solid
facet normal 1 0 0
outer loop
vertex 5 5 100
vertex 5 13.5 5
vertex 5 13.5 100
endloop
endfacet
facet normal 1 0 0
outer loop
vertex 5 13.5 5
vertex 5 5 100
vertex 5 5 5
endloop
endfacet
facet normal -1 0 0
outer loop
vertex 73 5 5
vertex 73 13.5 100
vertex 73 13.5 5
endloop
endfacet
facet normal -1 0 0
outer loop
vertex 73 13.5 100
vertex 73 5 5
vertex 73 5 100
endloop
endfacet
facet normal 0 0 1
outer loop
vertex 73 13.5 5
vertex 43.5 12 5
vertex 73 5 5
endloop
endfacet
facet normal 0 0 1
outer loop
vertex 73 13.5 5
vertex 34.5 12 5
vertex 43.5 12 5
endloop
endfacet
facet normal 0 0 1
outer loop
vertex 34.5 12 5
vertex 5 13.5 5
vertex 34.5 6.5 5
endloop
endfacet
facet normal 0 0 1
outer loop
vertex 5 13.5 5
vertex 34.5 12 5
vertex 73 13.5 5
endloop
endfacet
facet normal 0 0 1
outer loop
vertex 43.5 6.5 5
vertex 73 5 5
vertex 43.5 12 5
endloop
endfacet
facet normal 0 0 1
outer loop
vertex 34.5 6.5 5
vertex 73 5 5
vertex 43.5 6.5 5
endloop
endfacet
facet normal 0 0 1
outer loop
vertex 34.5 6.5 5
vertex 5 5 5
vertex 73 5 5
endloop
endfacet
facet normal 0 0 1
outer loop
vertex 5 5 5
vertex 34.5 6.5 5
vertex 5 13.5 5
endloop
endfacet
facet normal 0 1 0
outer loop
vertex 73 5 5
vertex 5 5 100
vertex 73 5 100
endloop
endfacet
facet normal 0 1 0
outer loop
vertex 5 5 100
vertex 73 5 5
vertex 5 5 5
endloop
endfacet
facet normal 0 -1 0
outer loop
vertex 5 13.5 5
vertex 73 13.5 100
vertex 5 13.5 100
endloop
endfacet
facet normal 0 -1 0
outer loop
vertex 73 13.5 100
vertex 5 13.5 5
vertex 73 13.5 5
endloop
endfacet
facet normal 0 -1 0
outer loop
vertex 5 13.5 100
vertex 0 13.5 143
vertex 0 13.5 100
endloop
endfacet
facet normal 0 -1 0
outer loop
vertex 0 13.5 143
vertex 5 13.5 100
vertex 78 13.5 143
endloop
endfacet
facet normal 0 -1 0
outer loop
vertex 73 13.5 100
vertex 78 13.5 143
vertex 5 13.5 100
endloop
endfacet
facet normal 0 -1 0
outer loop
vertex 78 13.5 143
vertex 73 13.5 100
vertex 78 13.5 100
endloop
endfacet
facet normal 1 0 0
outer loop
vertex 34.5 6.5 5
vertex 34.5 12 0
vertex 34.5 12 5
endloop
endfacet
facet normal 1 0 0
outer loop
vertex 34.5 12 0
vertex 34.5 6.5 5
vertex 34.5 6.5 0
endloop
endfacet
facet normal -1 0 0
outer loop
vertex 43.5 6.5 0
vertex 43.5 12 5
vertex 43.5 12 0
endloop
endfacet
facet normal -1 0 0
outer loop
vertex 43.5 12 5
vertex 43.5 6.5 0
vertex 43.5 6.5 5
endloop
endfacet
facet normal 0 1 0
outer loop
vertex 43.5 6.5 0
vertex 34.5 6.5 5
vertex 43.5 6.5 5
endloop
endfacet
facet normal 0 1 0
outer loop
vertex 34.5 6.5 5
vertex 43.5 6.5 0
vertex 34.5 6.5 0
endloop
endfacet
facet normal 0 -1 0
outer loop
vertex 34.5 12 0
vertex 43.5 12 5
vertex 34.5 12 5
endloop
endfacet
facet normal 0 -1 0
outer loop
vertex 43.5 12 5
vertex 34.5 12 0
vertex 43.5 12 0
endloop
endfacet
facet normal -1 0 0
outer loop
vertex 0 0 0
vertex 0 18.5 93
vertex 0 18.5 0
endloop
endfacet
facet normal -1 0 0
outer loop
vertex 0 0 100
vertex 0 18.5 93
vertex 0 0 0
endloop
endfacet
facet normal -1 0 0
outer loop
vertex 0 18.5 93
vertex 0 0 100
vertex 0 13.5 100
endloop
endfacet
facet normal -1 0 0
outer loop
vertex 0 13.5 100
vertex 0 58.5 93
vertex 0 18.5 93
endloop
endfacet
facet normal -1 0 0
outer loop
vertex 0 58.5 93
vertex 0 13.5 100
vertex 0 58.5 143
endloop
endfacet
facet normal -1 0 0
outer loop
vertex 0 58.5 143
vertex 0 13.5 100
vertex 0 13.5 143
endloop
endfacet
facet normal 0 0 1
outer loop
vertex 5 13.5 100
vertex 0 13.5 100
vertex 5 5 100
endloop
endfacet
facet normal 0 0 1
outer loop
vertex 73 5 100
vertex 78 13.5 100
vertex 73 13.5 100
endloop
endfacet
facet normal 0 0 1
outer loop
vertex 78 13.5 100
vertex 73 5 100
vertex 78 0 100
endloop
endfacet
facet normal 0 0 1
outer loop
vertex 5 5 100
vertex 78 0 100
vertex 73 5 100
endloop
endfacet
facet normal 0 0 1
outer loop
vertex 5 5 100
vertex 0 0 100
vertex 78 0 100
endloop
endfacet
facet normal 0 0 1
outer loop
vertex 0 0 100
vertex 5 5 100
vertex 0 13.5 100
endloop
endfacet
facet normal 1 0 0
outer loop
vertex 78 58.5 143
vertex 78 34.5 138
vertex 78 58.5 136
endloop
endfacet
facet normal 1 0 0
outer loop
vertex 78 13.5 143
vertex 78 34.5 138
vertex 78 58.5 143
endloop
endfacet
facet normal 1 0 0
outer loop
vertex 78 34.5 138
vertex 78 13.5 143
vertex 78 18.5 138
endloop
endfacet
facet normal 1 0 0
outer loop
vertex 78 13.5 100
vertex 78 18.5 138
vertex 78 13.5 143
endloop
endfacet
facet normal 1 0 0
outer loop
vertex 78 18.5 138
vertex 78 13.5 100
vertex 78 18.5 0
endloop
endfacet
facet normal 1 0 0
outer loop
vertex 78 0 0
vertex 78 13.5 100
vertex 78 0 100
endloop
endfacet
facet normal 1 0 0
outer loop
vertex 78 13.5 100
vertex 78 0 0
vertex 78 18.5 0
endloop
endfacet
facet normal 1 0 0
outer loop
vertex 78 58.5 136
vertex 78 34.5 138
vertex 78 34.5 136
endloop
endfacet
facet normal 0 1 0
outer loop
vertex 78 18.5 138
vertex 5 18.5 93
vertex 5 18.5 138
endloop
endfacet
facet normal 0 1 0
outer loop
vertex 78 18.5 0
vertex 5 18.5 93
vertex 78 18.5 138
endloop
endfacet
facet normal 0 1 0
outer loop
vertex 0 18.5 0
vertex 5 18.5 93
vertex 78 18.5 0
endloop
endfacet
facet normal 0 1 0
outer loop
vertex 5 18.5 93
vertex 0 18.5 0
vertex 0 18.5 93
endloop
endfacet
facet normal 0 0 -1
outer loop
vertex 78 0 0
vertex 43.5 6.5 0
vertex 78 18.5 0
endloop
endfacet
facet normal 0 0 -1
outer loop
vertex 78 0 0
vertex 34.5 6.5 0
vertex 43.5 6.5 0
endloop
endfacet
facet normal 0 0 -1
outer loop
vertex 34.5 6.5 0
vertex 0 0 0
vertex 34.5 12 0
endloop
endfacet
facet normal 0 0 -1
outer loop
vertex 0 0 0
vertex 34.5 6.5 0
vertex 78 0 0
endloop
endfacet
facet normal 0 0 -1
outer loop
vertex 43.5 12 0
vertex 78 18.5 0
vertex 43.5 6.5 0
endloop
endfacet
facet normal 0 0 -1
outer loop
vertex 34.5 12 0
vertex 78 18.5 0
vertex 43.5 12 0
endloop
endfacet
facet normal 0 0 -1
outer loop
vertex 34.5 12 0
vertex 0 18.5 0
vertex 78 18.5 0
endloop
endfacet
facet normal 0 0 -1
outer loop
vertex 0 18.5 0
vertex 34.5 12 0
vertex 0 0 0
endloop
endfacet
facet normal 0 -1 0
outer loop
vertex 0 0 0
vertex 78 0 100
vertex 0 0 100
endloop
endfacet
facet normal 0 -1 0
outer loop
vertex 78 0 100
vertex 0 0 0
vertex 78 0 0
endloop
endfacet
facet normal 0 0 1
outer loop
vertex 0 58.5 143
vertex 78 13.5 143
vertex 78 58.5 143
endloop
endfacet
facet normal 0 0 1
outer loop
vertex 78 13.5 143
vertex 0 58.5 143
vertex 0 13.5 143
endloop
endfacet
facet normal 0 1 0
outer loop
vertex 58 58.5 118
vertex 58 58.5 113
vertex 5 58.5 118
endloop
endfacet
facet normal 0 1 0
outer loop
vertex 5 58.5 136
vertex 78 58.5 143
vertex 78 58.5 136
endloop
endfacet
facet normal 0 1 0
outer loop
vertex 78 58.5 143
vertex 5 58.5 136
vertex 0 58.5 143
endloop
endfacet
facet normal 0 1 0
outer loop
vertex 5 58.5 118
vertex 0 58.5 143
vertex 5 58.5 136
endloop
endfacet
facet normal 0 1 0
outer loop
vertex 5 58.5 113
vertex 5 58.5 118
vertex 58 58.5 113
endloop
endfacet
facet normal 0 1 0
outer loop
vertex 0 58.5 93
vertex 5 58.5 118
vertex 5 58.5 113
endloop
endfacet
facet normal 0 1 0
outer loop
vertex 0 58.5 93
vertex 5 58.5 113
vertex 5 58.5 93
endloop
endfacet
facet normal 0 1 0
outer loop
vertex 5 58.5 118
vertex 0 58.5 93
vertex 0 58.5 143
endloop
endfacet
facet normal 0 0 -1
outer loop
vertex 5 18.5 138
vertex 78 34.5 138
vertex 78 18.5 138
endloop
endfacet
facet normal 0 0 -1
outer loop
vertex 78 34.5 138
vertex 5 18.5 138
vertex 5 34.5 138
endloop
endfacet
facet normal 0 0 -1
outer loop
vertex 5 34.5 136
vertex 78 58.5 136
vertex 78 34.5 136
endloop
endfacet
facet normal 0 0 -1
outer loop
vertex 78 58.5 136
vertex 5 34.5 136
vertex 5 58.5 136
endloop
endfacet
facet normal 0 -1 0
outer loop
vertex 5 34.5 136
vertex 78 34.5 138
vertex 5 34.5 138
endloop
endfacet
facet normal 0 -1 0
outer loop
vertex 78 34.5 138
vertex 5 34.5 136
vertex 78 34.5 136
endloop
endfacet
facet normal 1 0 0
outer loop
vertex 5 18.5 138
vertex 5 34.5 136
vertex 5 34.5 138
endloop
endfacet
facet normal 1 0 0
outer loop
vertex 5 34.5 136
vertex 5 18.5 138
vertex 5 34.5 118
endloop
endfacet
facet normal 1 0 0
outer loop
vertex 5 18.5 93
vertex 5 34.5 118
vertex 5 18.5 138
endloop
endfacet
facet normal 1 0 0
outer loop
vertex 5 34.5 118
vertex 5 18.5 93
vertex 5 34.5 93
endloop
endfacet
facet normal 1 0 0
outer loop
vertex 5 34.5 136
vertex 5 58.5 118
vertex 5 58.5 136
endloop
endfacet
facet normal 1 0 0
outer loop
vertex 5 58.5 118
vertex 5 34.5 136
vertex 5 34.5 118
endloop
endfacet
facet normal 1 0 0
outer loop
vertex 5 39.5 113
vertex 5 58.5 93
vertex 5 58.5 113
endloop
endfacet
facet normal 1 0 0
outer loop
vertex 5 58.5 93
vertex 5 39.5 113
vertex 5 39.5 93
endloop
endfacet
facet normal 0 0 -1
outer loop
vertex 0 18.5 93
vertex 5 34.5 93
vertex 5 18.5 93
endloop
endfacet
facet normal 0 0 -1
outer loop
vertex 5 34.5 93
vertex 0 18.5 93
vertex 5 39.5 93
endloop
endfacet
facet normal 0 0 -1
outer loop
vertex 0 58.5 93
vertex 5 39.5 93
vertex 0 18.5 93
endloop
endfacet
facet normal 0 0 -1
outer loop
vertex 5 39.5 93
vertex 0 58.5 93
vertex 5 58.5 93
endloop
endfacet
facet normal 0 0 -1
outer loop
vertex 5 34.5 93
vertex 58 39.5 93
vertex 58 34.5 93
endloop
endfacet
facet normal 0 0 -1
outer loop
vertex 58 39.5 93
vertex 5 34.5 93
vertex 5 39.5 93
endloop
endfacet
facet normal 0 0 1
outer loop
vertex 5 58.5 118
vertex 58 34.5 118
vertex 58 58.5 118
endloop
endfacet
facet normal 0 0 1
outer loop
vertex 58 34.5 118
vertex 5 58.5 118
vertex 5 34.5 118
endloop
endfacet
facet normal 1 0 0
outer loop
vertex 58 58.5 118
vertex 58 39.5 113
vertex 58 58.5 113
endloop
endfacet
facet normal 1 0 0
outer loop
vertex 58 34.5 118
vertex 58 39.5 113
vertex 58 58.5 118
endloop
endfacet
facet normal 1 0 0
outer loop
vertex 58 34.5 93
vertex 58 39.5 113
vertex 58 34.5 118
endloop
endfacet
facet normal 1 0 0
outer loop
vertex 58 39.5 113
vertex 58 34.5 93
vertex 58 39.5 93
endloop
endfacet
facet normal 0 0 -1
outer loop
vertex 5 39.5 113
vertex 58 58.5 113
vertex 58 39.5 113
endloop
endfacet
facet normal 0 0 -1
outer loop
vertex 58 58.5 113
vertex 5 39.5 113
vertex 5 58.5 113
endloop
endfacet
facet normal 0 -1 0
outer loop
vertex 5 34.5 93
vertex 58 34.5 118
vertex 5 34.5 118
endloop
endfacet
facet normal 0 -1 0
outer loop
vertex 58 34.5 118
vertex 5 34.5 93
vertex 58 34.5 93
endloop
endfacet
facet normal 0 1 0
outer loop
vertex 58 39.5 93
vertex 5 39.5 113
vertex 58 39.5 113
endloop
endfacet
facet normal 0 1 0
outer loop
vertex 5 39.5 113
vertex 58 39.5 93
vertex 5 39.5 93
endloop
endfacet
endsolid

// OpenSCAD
ph_inner_l = 68;
ph_inner_w = 8.5;
ph_inner_h = 95;

ph_fullH = 138;

thick = 5;

charge_w = 5.5;
charge_l = 9;


module phone_container(){
    union(){
        difference(){
            cube([ph_inner_l+2*thick,
              ph_inner_w+2*thick,
              ph_inner_h+thick]);
            union(){
              translate([thick,thick,thick])
              cube([ph_inner_l,ph_inner_w,ph_inner_h+thick]);
              translate([thick+0.5*ph_inner_l,
                        thick+0.5*ph_inner_w,0])
              cube([charge_l,charge_w,3*thick],true);
            }
            
        }
        translate([0,ph_inner_w+thick,0])
        cube([ph_inner_l+2*thick,thick,ph_fullH+thick]);
    }
}



side_thick = 16;
top_thick = 20;
length = 40;
module phone_holder(){
	translate([0,ph_inner_w+2*thick,ph_fullH])
	cube([ph_inner_l+2*thick,length,thick]);
	
	translate([0,ph_inner_w+2*thick+side_thick,ph_fullH-2])
	cube([ph_inner_l+2*thick,length-side_thick,thick]);
	
	translate([0,ph_inner_w+2*thick,ph_fullH-thick-length])
	cube([thick,length,length+thick]);

	
	translate([0,ph_inner_w+2*thick+side_thick,ph_fullH-top_thick-thick])
	cube([ph_inner_l+2*thick-20,length-side_thick,thick]);
	
	translate([0,ph_inner_w+2*thick+side_thick,ph_fullH-length-thick])
	cube([ph_inner_l+2*thick-20,thick,length-top_thick]);
}


phone_container();
phone_holder();
